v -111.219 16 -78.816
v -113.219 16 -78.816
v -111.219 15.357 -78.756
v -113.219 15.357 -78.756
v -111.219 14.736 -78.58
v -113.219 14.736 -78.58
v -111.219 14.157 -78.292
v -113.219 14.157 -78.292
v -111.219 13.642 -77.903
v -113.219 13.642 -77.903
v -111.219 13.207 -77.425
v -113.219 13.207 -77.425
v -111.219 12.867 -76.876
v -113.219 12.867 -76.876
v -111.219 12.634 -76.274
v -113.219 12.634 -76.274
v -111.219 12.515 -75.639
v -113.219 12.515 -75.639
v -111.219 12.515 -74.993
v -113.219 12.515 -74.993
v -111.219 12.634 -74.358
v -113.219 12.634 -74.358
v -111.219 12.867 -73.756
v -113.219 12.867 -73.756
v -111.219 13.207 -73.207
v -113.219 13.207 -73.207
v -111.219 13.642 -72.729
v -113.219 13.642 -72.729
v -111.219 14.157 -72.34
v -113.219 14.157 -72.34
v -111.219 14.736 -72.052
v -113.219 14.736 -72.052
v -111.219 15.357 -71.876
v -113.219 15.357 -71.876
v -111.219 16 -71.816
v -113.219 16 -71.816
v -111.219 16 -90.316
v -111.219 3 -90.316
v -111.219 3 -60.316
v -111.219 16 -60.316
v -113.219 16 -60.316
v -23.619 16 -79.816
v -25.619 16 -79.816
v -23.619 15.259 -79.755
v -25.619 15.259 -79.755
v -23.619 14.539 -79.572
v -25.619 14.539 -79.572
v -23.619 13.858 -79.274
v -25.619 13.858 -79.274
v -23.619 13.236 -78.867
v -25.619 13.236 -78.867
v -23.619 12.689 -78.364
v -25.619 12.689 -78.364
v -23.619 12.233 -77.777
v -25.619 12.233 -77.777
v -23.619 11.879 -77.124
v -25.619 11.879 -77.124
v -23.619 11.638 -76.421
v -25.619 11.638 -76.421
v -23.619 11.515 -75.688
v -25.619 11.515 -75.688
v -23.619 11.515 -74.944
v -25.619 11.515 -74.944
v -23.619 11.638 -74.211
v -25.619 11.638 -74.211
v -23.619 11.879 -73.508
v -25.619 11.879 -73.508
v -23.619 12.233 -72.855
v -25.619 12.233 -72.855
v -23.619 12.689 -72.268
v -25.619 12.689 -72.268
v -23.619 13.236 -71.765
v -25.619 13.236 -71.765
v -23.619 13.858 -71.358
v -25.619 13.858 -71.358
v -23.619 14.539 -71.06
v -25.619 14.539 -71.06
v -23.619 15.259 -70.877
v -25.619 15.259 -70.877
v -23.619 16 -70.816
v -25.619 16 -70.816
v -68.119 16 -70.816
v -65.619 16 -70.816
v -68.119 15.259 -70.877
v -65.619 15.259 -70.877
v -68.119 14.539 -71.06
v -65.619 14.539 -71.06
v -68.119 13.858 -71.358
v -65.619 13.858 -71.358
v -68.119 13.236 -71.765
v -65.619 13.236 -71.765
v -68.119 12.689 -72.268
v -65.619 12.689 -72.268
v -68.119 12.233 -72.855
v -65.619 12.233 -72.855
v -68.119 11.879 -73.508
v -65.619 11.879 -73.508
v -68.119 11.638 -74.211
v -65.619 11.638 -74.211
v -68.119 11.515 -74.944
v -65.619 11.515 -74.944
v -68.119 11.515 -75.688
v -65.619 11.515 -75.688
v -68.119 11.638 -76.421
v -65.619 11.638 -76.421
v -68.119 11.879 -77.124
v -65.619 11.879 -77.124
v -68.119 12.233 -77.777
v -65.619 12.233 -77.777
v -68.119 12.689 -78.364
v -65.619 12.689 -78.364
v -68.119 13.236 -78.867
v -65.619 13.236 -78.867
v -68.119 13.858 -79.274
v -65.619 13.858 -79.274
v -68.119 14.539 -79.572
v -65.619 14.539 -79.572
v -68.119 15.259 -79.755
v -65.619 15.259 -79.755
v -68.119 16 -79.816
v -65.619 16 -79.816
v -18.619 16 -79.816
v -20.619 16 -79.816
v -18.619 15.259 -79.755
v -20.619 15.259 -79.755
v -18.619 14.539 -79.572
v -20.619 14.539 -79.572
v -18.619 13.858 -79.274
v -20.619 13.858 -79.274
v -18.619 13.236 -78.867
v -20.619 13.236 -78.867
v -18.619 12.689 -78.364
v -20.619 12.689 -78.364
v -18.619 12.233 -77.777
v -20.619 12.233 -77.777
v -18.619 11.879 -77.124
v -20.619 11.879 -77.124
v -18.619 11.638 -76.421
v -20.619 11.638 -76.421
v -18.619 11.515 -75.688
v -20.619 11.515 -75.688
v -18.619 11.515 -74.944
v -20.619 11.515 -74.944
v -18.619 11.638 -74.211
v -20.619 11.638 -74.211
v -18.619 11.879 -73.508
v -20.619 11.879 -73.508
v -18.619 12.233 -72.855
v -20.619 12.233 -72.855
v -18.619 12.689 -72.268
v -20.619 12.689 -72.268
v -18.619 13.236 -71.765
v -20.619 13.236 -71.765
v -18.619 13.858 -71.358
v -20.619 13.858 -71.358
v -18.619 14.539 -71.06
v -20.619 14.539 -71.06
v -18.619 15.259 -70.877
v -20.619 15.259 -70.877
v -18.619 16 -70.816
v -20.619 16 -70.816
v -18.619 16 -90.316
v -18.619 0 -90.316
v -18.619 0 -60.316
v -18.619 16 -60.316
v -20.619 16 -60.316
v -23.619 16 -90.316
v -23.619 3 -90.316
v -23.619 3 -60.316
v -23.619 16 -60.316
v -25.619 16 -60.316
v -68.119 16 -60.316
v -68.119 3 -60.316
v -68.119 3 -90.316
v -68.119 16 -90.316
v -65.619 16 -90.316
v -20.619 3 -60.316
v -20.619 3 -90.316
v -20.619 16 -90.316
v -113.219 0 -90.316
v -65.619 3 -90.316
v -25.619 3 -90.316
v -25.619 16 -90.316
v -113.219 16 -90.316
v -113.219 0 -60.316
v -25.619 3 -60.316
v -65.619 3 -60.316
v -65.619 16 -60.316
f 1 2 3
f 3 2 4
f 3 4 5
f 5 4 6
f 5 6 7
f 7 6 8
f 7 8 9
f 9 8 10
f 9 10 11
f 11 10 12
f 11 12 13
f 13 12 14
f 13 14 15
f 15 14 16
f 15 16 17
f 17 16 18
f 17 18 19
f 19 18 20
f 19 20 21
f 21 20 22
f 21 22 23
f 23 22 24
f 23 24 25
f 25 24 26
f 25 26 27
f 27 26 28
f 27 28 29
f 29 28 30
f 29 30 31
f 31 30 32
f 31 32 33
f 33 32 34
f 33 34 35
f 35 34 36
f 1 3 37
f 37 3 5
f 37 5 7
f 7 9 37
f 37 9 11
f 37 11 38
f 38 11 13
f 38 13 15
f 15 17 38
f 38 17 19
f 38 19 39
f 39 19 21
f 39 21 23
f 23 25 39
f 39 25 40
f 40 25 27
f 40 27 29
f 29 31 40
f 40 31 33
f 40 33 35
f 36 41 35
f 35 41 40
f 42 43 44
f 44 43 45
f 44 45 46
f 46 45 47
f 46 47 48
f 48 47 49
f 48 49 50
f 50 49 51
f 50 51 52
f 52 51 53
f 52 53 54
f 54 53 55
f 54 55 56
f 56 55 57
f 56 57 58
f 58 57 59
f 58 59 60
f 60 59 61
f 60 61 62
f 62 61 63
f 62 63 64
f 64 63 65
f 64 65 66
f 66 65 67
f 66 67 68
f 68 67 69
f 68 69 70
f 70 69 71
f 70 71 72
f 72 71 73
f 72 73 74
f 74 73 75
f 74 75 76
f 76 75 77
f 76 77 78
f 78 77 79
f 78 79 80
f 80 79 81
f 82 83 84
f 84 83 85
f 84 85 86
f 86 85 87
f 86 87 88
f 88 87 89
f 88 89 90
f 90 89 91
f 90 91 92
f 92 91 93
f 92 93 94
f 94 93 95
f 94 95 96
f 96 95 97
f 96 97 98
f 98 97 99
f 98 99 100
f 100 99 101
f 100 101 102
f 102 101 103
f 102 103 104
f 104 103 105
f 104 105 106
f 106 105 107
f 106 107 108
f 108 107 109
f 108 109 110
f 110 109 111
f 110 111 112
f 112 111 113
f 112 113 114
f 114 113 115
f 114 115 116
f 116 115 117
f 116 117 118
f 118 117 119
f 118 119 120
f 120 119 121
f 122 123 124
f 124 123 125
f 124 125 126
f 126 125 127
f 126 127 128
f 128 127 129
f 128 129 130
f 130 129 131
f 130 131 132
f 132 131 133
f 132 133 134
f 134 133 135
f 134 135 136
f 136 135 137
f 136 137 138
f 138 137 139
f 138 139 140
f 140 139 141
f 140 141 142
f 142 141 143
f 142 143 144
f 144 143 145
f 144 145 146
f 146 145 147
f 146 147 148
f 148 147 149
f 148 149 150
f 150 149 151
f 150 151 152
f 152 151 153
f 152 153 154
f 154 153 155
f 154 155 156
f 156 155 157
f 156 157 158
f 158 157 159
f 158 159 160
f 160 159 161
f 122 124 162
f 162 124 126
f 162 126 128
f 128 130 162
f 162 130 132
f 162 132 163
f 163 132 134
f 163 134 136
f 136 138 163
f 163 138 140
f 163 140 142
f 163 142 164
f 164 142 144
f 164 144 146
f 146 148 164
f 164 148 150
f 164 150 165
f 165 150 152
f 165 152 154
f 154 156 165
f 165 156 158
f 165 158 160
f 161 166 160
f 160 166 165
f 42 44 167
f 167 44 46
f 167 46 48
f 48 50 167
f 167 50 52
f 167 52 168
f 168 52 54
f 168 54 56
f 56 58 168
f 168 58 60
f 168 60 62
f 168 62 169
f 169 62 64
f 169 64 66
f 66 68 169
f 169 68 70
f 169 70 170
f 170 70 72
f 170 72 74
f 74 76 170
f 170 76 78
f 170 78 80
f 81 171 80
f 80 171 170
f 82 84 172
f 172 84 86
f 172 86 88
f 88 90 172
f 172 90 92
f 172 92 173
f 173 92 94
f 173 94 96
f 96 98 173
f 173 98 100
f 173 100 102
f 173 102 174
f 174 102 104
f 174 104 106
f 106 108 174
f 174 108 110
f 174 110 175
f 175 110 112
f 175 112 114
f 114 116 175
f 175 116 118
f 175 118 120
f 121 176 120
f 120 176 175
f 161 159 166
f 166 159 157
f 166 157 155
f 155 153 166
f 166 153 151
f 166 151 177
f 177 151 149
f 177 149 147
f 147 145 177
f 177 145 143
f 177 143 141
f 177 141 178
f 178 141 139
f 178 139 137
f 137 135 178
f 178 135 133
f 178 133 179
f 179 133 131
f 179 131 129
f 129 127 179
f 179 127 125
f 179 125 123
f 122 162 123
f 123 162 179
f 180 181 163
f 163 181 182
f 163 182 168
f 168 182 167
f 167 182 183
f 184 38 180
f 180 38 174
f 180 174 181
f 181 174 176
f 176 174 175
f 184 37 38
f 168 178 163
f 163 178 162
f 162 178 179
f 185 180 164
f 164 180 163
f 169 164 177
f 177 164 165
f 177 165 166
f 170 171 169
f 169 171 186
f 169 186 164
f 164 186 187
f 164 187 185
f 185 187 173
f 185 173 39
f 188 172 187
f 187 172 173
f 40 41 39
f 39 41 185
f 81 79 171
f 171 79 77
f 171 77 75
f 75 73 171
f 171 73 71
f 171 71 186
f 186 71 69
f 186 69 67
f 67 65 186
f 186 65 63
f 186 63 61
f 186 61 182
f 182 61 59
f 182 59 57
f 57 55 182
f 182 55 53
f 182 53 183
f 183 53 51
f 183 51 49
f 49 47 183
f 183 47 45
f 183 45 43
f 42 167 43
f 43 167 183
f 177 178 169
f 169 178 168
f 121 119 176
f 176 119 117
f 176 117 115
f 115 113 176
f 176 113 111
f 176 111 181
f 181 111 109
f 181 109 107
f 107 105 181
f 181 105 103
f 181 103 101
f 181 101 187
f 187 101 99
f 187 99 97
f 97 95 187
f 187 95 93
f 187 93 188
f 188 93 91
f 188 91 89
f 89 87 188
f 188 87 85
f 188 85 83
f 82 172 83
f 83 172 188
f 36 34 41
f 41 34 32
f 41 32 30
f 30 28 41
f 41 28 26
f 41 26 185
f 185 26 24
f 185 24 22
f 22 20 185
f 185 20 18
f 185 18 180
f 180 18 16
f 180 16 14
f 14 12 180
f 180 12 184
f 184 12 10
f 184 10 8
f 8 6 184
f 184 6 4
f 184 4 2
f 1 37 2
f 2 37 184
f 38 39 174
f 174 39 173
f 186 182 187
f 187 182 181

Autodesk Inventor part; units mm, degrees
ref_plane "YZ Plane" through (0, 0, 0) normal (1, 0, 0) x (0, 1, 0)
ref_plane "XZ Plane" through (0, 0, 0) normal (0, 1, 0) x (-1, 0, 0)
ref_plane "XY Plane" through (0, 0, 0) normal (0, 0, 1) x (1, 0, 0)
sketch "Sketch1" plane through (0, 0, 0) normal (0, 1, 0) x (-1, 0, 0)
  line L0 (115.6192, -60.316) -> (18.6192, -60.316)
  line L1 (18.6192, -60.316) -> (18.6192, -90.316)
  line L2 (18.6192, -90.316) -> (115.6192, -90.316)
  line L3 (115.6192, -90.316) -> (115.6192, -60.316)
  line L4 (115.6192, -60.316) -> (18.6192, -90.316) construction
  line L5 (18.6192, -60.316) -> (115.6192, -90.316) construction
  line L6 (113.2192, -60.316) -> (113.2192, -90.316)
  line L7 (111.2192, -60.316) -> (111.2192, -90.316)
  line L8 (25.6192, -60.316) -> (25.6192, -90.316)
  line L9 (23.6192, -60.316) -> (23.6192, -90.316)
  line L10 (65.6192, -90.316) -> (65.6192, -60.316)
  line L11 (68.1192, -90.316) -> (68.1192, -60.316)
  line L12 (20.6192, -90.316) -> (20.6192, -60.316)
  point P0 (0, 0)
  point P1 (67.1192, -75.316)
  dimension "d0" = 97
  dimension "d1" = 30
  dimension "d2" = 2.4
  dimension "d3" = 2
  dimension "d4" = 5
  dimension "d5" = 2
  dimension "d24" = 47
  dimension "d25" = 2.5
  dimension "d28" = 2
  dimension "d29" = 3
extrude "Extrusion1" add sketch "Sketch1" along normal blind 3 contours L7 L2 L11 L0 | L10 L2 L8 L0 | L9 L2 L12 L0
extrude "Extrusion2" add sketch "Sketch1" along normal blind 16 contours L6 L2 L7 L0
extrude "Extrusion8" add sketch "Sketch1" along normal blind 16 contours L11 L2 L10 L0
extrude "Extrusion4" add sketch "Sketch1" along normal blind 16 contours L8 L2 L9 L0
extrude "Extrusion5" add sketch "Sketch1" along normal blind 3 contours L9 L2 L12 L0 | L12 L2 L1 L0
extrude "Extrusion9" add sketch "Sketch1" along normal blind 16 contours L12 L2 L1 L0
sketch "Sketch2" plane through (-18.6192, 16, -60.316) normal (1, 0, 0) x (0, 0, -1)
  line L0 (30, -13) -> (0, -13) construction
  line L1 (30, -13) -> (30, 0) construction
  line L2 (0, 0) -> (30, 0) construction
  line L3 (0, -13) -> (0, 0) construction
  line L4 (0, 0) -> (30, 0) construction
  line L5 (15, 0) -> (15, -13) construction
  line L6 (30, -13) -> (0, -13) construction
  circle A0 centre (15, 0) radius 4.5
  point P0 (-60.316, -16)
  dimension "d18" = 9
extrude "Extrusion6" cut sketch "Sketch2" against normal up to surface (49.5 mm away)
sketch "Sketch3" plane through (-113.2192, 16, -90.316) normal (-1, 0, 0) x (0, 0, 1)
  line L0 (30, 0) -> (0, 0) projected
  circle A0 centre (15, 0) radius 3.5
  point P0 (90.316, -16)
  dimension "d19" = 7
extrude "Extrusion7" cut sketch "Sketch3" against normal up to surface (2 mm away)
properties part number "Hamilton 10 micL syringe holder_3DPrint"
